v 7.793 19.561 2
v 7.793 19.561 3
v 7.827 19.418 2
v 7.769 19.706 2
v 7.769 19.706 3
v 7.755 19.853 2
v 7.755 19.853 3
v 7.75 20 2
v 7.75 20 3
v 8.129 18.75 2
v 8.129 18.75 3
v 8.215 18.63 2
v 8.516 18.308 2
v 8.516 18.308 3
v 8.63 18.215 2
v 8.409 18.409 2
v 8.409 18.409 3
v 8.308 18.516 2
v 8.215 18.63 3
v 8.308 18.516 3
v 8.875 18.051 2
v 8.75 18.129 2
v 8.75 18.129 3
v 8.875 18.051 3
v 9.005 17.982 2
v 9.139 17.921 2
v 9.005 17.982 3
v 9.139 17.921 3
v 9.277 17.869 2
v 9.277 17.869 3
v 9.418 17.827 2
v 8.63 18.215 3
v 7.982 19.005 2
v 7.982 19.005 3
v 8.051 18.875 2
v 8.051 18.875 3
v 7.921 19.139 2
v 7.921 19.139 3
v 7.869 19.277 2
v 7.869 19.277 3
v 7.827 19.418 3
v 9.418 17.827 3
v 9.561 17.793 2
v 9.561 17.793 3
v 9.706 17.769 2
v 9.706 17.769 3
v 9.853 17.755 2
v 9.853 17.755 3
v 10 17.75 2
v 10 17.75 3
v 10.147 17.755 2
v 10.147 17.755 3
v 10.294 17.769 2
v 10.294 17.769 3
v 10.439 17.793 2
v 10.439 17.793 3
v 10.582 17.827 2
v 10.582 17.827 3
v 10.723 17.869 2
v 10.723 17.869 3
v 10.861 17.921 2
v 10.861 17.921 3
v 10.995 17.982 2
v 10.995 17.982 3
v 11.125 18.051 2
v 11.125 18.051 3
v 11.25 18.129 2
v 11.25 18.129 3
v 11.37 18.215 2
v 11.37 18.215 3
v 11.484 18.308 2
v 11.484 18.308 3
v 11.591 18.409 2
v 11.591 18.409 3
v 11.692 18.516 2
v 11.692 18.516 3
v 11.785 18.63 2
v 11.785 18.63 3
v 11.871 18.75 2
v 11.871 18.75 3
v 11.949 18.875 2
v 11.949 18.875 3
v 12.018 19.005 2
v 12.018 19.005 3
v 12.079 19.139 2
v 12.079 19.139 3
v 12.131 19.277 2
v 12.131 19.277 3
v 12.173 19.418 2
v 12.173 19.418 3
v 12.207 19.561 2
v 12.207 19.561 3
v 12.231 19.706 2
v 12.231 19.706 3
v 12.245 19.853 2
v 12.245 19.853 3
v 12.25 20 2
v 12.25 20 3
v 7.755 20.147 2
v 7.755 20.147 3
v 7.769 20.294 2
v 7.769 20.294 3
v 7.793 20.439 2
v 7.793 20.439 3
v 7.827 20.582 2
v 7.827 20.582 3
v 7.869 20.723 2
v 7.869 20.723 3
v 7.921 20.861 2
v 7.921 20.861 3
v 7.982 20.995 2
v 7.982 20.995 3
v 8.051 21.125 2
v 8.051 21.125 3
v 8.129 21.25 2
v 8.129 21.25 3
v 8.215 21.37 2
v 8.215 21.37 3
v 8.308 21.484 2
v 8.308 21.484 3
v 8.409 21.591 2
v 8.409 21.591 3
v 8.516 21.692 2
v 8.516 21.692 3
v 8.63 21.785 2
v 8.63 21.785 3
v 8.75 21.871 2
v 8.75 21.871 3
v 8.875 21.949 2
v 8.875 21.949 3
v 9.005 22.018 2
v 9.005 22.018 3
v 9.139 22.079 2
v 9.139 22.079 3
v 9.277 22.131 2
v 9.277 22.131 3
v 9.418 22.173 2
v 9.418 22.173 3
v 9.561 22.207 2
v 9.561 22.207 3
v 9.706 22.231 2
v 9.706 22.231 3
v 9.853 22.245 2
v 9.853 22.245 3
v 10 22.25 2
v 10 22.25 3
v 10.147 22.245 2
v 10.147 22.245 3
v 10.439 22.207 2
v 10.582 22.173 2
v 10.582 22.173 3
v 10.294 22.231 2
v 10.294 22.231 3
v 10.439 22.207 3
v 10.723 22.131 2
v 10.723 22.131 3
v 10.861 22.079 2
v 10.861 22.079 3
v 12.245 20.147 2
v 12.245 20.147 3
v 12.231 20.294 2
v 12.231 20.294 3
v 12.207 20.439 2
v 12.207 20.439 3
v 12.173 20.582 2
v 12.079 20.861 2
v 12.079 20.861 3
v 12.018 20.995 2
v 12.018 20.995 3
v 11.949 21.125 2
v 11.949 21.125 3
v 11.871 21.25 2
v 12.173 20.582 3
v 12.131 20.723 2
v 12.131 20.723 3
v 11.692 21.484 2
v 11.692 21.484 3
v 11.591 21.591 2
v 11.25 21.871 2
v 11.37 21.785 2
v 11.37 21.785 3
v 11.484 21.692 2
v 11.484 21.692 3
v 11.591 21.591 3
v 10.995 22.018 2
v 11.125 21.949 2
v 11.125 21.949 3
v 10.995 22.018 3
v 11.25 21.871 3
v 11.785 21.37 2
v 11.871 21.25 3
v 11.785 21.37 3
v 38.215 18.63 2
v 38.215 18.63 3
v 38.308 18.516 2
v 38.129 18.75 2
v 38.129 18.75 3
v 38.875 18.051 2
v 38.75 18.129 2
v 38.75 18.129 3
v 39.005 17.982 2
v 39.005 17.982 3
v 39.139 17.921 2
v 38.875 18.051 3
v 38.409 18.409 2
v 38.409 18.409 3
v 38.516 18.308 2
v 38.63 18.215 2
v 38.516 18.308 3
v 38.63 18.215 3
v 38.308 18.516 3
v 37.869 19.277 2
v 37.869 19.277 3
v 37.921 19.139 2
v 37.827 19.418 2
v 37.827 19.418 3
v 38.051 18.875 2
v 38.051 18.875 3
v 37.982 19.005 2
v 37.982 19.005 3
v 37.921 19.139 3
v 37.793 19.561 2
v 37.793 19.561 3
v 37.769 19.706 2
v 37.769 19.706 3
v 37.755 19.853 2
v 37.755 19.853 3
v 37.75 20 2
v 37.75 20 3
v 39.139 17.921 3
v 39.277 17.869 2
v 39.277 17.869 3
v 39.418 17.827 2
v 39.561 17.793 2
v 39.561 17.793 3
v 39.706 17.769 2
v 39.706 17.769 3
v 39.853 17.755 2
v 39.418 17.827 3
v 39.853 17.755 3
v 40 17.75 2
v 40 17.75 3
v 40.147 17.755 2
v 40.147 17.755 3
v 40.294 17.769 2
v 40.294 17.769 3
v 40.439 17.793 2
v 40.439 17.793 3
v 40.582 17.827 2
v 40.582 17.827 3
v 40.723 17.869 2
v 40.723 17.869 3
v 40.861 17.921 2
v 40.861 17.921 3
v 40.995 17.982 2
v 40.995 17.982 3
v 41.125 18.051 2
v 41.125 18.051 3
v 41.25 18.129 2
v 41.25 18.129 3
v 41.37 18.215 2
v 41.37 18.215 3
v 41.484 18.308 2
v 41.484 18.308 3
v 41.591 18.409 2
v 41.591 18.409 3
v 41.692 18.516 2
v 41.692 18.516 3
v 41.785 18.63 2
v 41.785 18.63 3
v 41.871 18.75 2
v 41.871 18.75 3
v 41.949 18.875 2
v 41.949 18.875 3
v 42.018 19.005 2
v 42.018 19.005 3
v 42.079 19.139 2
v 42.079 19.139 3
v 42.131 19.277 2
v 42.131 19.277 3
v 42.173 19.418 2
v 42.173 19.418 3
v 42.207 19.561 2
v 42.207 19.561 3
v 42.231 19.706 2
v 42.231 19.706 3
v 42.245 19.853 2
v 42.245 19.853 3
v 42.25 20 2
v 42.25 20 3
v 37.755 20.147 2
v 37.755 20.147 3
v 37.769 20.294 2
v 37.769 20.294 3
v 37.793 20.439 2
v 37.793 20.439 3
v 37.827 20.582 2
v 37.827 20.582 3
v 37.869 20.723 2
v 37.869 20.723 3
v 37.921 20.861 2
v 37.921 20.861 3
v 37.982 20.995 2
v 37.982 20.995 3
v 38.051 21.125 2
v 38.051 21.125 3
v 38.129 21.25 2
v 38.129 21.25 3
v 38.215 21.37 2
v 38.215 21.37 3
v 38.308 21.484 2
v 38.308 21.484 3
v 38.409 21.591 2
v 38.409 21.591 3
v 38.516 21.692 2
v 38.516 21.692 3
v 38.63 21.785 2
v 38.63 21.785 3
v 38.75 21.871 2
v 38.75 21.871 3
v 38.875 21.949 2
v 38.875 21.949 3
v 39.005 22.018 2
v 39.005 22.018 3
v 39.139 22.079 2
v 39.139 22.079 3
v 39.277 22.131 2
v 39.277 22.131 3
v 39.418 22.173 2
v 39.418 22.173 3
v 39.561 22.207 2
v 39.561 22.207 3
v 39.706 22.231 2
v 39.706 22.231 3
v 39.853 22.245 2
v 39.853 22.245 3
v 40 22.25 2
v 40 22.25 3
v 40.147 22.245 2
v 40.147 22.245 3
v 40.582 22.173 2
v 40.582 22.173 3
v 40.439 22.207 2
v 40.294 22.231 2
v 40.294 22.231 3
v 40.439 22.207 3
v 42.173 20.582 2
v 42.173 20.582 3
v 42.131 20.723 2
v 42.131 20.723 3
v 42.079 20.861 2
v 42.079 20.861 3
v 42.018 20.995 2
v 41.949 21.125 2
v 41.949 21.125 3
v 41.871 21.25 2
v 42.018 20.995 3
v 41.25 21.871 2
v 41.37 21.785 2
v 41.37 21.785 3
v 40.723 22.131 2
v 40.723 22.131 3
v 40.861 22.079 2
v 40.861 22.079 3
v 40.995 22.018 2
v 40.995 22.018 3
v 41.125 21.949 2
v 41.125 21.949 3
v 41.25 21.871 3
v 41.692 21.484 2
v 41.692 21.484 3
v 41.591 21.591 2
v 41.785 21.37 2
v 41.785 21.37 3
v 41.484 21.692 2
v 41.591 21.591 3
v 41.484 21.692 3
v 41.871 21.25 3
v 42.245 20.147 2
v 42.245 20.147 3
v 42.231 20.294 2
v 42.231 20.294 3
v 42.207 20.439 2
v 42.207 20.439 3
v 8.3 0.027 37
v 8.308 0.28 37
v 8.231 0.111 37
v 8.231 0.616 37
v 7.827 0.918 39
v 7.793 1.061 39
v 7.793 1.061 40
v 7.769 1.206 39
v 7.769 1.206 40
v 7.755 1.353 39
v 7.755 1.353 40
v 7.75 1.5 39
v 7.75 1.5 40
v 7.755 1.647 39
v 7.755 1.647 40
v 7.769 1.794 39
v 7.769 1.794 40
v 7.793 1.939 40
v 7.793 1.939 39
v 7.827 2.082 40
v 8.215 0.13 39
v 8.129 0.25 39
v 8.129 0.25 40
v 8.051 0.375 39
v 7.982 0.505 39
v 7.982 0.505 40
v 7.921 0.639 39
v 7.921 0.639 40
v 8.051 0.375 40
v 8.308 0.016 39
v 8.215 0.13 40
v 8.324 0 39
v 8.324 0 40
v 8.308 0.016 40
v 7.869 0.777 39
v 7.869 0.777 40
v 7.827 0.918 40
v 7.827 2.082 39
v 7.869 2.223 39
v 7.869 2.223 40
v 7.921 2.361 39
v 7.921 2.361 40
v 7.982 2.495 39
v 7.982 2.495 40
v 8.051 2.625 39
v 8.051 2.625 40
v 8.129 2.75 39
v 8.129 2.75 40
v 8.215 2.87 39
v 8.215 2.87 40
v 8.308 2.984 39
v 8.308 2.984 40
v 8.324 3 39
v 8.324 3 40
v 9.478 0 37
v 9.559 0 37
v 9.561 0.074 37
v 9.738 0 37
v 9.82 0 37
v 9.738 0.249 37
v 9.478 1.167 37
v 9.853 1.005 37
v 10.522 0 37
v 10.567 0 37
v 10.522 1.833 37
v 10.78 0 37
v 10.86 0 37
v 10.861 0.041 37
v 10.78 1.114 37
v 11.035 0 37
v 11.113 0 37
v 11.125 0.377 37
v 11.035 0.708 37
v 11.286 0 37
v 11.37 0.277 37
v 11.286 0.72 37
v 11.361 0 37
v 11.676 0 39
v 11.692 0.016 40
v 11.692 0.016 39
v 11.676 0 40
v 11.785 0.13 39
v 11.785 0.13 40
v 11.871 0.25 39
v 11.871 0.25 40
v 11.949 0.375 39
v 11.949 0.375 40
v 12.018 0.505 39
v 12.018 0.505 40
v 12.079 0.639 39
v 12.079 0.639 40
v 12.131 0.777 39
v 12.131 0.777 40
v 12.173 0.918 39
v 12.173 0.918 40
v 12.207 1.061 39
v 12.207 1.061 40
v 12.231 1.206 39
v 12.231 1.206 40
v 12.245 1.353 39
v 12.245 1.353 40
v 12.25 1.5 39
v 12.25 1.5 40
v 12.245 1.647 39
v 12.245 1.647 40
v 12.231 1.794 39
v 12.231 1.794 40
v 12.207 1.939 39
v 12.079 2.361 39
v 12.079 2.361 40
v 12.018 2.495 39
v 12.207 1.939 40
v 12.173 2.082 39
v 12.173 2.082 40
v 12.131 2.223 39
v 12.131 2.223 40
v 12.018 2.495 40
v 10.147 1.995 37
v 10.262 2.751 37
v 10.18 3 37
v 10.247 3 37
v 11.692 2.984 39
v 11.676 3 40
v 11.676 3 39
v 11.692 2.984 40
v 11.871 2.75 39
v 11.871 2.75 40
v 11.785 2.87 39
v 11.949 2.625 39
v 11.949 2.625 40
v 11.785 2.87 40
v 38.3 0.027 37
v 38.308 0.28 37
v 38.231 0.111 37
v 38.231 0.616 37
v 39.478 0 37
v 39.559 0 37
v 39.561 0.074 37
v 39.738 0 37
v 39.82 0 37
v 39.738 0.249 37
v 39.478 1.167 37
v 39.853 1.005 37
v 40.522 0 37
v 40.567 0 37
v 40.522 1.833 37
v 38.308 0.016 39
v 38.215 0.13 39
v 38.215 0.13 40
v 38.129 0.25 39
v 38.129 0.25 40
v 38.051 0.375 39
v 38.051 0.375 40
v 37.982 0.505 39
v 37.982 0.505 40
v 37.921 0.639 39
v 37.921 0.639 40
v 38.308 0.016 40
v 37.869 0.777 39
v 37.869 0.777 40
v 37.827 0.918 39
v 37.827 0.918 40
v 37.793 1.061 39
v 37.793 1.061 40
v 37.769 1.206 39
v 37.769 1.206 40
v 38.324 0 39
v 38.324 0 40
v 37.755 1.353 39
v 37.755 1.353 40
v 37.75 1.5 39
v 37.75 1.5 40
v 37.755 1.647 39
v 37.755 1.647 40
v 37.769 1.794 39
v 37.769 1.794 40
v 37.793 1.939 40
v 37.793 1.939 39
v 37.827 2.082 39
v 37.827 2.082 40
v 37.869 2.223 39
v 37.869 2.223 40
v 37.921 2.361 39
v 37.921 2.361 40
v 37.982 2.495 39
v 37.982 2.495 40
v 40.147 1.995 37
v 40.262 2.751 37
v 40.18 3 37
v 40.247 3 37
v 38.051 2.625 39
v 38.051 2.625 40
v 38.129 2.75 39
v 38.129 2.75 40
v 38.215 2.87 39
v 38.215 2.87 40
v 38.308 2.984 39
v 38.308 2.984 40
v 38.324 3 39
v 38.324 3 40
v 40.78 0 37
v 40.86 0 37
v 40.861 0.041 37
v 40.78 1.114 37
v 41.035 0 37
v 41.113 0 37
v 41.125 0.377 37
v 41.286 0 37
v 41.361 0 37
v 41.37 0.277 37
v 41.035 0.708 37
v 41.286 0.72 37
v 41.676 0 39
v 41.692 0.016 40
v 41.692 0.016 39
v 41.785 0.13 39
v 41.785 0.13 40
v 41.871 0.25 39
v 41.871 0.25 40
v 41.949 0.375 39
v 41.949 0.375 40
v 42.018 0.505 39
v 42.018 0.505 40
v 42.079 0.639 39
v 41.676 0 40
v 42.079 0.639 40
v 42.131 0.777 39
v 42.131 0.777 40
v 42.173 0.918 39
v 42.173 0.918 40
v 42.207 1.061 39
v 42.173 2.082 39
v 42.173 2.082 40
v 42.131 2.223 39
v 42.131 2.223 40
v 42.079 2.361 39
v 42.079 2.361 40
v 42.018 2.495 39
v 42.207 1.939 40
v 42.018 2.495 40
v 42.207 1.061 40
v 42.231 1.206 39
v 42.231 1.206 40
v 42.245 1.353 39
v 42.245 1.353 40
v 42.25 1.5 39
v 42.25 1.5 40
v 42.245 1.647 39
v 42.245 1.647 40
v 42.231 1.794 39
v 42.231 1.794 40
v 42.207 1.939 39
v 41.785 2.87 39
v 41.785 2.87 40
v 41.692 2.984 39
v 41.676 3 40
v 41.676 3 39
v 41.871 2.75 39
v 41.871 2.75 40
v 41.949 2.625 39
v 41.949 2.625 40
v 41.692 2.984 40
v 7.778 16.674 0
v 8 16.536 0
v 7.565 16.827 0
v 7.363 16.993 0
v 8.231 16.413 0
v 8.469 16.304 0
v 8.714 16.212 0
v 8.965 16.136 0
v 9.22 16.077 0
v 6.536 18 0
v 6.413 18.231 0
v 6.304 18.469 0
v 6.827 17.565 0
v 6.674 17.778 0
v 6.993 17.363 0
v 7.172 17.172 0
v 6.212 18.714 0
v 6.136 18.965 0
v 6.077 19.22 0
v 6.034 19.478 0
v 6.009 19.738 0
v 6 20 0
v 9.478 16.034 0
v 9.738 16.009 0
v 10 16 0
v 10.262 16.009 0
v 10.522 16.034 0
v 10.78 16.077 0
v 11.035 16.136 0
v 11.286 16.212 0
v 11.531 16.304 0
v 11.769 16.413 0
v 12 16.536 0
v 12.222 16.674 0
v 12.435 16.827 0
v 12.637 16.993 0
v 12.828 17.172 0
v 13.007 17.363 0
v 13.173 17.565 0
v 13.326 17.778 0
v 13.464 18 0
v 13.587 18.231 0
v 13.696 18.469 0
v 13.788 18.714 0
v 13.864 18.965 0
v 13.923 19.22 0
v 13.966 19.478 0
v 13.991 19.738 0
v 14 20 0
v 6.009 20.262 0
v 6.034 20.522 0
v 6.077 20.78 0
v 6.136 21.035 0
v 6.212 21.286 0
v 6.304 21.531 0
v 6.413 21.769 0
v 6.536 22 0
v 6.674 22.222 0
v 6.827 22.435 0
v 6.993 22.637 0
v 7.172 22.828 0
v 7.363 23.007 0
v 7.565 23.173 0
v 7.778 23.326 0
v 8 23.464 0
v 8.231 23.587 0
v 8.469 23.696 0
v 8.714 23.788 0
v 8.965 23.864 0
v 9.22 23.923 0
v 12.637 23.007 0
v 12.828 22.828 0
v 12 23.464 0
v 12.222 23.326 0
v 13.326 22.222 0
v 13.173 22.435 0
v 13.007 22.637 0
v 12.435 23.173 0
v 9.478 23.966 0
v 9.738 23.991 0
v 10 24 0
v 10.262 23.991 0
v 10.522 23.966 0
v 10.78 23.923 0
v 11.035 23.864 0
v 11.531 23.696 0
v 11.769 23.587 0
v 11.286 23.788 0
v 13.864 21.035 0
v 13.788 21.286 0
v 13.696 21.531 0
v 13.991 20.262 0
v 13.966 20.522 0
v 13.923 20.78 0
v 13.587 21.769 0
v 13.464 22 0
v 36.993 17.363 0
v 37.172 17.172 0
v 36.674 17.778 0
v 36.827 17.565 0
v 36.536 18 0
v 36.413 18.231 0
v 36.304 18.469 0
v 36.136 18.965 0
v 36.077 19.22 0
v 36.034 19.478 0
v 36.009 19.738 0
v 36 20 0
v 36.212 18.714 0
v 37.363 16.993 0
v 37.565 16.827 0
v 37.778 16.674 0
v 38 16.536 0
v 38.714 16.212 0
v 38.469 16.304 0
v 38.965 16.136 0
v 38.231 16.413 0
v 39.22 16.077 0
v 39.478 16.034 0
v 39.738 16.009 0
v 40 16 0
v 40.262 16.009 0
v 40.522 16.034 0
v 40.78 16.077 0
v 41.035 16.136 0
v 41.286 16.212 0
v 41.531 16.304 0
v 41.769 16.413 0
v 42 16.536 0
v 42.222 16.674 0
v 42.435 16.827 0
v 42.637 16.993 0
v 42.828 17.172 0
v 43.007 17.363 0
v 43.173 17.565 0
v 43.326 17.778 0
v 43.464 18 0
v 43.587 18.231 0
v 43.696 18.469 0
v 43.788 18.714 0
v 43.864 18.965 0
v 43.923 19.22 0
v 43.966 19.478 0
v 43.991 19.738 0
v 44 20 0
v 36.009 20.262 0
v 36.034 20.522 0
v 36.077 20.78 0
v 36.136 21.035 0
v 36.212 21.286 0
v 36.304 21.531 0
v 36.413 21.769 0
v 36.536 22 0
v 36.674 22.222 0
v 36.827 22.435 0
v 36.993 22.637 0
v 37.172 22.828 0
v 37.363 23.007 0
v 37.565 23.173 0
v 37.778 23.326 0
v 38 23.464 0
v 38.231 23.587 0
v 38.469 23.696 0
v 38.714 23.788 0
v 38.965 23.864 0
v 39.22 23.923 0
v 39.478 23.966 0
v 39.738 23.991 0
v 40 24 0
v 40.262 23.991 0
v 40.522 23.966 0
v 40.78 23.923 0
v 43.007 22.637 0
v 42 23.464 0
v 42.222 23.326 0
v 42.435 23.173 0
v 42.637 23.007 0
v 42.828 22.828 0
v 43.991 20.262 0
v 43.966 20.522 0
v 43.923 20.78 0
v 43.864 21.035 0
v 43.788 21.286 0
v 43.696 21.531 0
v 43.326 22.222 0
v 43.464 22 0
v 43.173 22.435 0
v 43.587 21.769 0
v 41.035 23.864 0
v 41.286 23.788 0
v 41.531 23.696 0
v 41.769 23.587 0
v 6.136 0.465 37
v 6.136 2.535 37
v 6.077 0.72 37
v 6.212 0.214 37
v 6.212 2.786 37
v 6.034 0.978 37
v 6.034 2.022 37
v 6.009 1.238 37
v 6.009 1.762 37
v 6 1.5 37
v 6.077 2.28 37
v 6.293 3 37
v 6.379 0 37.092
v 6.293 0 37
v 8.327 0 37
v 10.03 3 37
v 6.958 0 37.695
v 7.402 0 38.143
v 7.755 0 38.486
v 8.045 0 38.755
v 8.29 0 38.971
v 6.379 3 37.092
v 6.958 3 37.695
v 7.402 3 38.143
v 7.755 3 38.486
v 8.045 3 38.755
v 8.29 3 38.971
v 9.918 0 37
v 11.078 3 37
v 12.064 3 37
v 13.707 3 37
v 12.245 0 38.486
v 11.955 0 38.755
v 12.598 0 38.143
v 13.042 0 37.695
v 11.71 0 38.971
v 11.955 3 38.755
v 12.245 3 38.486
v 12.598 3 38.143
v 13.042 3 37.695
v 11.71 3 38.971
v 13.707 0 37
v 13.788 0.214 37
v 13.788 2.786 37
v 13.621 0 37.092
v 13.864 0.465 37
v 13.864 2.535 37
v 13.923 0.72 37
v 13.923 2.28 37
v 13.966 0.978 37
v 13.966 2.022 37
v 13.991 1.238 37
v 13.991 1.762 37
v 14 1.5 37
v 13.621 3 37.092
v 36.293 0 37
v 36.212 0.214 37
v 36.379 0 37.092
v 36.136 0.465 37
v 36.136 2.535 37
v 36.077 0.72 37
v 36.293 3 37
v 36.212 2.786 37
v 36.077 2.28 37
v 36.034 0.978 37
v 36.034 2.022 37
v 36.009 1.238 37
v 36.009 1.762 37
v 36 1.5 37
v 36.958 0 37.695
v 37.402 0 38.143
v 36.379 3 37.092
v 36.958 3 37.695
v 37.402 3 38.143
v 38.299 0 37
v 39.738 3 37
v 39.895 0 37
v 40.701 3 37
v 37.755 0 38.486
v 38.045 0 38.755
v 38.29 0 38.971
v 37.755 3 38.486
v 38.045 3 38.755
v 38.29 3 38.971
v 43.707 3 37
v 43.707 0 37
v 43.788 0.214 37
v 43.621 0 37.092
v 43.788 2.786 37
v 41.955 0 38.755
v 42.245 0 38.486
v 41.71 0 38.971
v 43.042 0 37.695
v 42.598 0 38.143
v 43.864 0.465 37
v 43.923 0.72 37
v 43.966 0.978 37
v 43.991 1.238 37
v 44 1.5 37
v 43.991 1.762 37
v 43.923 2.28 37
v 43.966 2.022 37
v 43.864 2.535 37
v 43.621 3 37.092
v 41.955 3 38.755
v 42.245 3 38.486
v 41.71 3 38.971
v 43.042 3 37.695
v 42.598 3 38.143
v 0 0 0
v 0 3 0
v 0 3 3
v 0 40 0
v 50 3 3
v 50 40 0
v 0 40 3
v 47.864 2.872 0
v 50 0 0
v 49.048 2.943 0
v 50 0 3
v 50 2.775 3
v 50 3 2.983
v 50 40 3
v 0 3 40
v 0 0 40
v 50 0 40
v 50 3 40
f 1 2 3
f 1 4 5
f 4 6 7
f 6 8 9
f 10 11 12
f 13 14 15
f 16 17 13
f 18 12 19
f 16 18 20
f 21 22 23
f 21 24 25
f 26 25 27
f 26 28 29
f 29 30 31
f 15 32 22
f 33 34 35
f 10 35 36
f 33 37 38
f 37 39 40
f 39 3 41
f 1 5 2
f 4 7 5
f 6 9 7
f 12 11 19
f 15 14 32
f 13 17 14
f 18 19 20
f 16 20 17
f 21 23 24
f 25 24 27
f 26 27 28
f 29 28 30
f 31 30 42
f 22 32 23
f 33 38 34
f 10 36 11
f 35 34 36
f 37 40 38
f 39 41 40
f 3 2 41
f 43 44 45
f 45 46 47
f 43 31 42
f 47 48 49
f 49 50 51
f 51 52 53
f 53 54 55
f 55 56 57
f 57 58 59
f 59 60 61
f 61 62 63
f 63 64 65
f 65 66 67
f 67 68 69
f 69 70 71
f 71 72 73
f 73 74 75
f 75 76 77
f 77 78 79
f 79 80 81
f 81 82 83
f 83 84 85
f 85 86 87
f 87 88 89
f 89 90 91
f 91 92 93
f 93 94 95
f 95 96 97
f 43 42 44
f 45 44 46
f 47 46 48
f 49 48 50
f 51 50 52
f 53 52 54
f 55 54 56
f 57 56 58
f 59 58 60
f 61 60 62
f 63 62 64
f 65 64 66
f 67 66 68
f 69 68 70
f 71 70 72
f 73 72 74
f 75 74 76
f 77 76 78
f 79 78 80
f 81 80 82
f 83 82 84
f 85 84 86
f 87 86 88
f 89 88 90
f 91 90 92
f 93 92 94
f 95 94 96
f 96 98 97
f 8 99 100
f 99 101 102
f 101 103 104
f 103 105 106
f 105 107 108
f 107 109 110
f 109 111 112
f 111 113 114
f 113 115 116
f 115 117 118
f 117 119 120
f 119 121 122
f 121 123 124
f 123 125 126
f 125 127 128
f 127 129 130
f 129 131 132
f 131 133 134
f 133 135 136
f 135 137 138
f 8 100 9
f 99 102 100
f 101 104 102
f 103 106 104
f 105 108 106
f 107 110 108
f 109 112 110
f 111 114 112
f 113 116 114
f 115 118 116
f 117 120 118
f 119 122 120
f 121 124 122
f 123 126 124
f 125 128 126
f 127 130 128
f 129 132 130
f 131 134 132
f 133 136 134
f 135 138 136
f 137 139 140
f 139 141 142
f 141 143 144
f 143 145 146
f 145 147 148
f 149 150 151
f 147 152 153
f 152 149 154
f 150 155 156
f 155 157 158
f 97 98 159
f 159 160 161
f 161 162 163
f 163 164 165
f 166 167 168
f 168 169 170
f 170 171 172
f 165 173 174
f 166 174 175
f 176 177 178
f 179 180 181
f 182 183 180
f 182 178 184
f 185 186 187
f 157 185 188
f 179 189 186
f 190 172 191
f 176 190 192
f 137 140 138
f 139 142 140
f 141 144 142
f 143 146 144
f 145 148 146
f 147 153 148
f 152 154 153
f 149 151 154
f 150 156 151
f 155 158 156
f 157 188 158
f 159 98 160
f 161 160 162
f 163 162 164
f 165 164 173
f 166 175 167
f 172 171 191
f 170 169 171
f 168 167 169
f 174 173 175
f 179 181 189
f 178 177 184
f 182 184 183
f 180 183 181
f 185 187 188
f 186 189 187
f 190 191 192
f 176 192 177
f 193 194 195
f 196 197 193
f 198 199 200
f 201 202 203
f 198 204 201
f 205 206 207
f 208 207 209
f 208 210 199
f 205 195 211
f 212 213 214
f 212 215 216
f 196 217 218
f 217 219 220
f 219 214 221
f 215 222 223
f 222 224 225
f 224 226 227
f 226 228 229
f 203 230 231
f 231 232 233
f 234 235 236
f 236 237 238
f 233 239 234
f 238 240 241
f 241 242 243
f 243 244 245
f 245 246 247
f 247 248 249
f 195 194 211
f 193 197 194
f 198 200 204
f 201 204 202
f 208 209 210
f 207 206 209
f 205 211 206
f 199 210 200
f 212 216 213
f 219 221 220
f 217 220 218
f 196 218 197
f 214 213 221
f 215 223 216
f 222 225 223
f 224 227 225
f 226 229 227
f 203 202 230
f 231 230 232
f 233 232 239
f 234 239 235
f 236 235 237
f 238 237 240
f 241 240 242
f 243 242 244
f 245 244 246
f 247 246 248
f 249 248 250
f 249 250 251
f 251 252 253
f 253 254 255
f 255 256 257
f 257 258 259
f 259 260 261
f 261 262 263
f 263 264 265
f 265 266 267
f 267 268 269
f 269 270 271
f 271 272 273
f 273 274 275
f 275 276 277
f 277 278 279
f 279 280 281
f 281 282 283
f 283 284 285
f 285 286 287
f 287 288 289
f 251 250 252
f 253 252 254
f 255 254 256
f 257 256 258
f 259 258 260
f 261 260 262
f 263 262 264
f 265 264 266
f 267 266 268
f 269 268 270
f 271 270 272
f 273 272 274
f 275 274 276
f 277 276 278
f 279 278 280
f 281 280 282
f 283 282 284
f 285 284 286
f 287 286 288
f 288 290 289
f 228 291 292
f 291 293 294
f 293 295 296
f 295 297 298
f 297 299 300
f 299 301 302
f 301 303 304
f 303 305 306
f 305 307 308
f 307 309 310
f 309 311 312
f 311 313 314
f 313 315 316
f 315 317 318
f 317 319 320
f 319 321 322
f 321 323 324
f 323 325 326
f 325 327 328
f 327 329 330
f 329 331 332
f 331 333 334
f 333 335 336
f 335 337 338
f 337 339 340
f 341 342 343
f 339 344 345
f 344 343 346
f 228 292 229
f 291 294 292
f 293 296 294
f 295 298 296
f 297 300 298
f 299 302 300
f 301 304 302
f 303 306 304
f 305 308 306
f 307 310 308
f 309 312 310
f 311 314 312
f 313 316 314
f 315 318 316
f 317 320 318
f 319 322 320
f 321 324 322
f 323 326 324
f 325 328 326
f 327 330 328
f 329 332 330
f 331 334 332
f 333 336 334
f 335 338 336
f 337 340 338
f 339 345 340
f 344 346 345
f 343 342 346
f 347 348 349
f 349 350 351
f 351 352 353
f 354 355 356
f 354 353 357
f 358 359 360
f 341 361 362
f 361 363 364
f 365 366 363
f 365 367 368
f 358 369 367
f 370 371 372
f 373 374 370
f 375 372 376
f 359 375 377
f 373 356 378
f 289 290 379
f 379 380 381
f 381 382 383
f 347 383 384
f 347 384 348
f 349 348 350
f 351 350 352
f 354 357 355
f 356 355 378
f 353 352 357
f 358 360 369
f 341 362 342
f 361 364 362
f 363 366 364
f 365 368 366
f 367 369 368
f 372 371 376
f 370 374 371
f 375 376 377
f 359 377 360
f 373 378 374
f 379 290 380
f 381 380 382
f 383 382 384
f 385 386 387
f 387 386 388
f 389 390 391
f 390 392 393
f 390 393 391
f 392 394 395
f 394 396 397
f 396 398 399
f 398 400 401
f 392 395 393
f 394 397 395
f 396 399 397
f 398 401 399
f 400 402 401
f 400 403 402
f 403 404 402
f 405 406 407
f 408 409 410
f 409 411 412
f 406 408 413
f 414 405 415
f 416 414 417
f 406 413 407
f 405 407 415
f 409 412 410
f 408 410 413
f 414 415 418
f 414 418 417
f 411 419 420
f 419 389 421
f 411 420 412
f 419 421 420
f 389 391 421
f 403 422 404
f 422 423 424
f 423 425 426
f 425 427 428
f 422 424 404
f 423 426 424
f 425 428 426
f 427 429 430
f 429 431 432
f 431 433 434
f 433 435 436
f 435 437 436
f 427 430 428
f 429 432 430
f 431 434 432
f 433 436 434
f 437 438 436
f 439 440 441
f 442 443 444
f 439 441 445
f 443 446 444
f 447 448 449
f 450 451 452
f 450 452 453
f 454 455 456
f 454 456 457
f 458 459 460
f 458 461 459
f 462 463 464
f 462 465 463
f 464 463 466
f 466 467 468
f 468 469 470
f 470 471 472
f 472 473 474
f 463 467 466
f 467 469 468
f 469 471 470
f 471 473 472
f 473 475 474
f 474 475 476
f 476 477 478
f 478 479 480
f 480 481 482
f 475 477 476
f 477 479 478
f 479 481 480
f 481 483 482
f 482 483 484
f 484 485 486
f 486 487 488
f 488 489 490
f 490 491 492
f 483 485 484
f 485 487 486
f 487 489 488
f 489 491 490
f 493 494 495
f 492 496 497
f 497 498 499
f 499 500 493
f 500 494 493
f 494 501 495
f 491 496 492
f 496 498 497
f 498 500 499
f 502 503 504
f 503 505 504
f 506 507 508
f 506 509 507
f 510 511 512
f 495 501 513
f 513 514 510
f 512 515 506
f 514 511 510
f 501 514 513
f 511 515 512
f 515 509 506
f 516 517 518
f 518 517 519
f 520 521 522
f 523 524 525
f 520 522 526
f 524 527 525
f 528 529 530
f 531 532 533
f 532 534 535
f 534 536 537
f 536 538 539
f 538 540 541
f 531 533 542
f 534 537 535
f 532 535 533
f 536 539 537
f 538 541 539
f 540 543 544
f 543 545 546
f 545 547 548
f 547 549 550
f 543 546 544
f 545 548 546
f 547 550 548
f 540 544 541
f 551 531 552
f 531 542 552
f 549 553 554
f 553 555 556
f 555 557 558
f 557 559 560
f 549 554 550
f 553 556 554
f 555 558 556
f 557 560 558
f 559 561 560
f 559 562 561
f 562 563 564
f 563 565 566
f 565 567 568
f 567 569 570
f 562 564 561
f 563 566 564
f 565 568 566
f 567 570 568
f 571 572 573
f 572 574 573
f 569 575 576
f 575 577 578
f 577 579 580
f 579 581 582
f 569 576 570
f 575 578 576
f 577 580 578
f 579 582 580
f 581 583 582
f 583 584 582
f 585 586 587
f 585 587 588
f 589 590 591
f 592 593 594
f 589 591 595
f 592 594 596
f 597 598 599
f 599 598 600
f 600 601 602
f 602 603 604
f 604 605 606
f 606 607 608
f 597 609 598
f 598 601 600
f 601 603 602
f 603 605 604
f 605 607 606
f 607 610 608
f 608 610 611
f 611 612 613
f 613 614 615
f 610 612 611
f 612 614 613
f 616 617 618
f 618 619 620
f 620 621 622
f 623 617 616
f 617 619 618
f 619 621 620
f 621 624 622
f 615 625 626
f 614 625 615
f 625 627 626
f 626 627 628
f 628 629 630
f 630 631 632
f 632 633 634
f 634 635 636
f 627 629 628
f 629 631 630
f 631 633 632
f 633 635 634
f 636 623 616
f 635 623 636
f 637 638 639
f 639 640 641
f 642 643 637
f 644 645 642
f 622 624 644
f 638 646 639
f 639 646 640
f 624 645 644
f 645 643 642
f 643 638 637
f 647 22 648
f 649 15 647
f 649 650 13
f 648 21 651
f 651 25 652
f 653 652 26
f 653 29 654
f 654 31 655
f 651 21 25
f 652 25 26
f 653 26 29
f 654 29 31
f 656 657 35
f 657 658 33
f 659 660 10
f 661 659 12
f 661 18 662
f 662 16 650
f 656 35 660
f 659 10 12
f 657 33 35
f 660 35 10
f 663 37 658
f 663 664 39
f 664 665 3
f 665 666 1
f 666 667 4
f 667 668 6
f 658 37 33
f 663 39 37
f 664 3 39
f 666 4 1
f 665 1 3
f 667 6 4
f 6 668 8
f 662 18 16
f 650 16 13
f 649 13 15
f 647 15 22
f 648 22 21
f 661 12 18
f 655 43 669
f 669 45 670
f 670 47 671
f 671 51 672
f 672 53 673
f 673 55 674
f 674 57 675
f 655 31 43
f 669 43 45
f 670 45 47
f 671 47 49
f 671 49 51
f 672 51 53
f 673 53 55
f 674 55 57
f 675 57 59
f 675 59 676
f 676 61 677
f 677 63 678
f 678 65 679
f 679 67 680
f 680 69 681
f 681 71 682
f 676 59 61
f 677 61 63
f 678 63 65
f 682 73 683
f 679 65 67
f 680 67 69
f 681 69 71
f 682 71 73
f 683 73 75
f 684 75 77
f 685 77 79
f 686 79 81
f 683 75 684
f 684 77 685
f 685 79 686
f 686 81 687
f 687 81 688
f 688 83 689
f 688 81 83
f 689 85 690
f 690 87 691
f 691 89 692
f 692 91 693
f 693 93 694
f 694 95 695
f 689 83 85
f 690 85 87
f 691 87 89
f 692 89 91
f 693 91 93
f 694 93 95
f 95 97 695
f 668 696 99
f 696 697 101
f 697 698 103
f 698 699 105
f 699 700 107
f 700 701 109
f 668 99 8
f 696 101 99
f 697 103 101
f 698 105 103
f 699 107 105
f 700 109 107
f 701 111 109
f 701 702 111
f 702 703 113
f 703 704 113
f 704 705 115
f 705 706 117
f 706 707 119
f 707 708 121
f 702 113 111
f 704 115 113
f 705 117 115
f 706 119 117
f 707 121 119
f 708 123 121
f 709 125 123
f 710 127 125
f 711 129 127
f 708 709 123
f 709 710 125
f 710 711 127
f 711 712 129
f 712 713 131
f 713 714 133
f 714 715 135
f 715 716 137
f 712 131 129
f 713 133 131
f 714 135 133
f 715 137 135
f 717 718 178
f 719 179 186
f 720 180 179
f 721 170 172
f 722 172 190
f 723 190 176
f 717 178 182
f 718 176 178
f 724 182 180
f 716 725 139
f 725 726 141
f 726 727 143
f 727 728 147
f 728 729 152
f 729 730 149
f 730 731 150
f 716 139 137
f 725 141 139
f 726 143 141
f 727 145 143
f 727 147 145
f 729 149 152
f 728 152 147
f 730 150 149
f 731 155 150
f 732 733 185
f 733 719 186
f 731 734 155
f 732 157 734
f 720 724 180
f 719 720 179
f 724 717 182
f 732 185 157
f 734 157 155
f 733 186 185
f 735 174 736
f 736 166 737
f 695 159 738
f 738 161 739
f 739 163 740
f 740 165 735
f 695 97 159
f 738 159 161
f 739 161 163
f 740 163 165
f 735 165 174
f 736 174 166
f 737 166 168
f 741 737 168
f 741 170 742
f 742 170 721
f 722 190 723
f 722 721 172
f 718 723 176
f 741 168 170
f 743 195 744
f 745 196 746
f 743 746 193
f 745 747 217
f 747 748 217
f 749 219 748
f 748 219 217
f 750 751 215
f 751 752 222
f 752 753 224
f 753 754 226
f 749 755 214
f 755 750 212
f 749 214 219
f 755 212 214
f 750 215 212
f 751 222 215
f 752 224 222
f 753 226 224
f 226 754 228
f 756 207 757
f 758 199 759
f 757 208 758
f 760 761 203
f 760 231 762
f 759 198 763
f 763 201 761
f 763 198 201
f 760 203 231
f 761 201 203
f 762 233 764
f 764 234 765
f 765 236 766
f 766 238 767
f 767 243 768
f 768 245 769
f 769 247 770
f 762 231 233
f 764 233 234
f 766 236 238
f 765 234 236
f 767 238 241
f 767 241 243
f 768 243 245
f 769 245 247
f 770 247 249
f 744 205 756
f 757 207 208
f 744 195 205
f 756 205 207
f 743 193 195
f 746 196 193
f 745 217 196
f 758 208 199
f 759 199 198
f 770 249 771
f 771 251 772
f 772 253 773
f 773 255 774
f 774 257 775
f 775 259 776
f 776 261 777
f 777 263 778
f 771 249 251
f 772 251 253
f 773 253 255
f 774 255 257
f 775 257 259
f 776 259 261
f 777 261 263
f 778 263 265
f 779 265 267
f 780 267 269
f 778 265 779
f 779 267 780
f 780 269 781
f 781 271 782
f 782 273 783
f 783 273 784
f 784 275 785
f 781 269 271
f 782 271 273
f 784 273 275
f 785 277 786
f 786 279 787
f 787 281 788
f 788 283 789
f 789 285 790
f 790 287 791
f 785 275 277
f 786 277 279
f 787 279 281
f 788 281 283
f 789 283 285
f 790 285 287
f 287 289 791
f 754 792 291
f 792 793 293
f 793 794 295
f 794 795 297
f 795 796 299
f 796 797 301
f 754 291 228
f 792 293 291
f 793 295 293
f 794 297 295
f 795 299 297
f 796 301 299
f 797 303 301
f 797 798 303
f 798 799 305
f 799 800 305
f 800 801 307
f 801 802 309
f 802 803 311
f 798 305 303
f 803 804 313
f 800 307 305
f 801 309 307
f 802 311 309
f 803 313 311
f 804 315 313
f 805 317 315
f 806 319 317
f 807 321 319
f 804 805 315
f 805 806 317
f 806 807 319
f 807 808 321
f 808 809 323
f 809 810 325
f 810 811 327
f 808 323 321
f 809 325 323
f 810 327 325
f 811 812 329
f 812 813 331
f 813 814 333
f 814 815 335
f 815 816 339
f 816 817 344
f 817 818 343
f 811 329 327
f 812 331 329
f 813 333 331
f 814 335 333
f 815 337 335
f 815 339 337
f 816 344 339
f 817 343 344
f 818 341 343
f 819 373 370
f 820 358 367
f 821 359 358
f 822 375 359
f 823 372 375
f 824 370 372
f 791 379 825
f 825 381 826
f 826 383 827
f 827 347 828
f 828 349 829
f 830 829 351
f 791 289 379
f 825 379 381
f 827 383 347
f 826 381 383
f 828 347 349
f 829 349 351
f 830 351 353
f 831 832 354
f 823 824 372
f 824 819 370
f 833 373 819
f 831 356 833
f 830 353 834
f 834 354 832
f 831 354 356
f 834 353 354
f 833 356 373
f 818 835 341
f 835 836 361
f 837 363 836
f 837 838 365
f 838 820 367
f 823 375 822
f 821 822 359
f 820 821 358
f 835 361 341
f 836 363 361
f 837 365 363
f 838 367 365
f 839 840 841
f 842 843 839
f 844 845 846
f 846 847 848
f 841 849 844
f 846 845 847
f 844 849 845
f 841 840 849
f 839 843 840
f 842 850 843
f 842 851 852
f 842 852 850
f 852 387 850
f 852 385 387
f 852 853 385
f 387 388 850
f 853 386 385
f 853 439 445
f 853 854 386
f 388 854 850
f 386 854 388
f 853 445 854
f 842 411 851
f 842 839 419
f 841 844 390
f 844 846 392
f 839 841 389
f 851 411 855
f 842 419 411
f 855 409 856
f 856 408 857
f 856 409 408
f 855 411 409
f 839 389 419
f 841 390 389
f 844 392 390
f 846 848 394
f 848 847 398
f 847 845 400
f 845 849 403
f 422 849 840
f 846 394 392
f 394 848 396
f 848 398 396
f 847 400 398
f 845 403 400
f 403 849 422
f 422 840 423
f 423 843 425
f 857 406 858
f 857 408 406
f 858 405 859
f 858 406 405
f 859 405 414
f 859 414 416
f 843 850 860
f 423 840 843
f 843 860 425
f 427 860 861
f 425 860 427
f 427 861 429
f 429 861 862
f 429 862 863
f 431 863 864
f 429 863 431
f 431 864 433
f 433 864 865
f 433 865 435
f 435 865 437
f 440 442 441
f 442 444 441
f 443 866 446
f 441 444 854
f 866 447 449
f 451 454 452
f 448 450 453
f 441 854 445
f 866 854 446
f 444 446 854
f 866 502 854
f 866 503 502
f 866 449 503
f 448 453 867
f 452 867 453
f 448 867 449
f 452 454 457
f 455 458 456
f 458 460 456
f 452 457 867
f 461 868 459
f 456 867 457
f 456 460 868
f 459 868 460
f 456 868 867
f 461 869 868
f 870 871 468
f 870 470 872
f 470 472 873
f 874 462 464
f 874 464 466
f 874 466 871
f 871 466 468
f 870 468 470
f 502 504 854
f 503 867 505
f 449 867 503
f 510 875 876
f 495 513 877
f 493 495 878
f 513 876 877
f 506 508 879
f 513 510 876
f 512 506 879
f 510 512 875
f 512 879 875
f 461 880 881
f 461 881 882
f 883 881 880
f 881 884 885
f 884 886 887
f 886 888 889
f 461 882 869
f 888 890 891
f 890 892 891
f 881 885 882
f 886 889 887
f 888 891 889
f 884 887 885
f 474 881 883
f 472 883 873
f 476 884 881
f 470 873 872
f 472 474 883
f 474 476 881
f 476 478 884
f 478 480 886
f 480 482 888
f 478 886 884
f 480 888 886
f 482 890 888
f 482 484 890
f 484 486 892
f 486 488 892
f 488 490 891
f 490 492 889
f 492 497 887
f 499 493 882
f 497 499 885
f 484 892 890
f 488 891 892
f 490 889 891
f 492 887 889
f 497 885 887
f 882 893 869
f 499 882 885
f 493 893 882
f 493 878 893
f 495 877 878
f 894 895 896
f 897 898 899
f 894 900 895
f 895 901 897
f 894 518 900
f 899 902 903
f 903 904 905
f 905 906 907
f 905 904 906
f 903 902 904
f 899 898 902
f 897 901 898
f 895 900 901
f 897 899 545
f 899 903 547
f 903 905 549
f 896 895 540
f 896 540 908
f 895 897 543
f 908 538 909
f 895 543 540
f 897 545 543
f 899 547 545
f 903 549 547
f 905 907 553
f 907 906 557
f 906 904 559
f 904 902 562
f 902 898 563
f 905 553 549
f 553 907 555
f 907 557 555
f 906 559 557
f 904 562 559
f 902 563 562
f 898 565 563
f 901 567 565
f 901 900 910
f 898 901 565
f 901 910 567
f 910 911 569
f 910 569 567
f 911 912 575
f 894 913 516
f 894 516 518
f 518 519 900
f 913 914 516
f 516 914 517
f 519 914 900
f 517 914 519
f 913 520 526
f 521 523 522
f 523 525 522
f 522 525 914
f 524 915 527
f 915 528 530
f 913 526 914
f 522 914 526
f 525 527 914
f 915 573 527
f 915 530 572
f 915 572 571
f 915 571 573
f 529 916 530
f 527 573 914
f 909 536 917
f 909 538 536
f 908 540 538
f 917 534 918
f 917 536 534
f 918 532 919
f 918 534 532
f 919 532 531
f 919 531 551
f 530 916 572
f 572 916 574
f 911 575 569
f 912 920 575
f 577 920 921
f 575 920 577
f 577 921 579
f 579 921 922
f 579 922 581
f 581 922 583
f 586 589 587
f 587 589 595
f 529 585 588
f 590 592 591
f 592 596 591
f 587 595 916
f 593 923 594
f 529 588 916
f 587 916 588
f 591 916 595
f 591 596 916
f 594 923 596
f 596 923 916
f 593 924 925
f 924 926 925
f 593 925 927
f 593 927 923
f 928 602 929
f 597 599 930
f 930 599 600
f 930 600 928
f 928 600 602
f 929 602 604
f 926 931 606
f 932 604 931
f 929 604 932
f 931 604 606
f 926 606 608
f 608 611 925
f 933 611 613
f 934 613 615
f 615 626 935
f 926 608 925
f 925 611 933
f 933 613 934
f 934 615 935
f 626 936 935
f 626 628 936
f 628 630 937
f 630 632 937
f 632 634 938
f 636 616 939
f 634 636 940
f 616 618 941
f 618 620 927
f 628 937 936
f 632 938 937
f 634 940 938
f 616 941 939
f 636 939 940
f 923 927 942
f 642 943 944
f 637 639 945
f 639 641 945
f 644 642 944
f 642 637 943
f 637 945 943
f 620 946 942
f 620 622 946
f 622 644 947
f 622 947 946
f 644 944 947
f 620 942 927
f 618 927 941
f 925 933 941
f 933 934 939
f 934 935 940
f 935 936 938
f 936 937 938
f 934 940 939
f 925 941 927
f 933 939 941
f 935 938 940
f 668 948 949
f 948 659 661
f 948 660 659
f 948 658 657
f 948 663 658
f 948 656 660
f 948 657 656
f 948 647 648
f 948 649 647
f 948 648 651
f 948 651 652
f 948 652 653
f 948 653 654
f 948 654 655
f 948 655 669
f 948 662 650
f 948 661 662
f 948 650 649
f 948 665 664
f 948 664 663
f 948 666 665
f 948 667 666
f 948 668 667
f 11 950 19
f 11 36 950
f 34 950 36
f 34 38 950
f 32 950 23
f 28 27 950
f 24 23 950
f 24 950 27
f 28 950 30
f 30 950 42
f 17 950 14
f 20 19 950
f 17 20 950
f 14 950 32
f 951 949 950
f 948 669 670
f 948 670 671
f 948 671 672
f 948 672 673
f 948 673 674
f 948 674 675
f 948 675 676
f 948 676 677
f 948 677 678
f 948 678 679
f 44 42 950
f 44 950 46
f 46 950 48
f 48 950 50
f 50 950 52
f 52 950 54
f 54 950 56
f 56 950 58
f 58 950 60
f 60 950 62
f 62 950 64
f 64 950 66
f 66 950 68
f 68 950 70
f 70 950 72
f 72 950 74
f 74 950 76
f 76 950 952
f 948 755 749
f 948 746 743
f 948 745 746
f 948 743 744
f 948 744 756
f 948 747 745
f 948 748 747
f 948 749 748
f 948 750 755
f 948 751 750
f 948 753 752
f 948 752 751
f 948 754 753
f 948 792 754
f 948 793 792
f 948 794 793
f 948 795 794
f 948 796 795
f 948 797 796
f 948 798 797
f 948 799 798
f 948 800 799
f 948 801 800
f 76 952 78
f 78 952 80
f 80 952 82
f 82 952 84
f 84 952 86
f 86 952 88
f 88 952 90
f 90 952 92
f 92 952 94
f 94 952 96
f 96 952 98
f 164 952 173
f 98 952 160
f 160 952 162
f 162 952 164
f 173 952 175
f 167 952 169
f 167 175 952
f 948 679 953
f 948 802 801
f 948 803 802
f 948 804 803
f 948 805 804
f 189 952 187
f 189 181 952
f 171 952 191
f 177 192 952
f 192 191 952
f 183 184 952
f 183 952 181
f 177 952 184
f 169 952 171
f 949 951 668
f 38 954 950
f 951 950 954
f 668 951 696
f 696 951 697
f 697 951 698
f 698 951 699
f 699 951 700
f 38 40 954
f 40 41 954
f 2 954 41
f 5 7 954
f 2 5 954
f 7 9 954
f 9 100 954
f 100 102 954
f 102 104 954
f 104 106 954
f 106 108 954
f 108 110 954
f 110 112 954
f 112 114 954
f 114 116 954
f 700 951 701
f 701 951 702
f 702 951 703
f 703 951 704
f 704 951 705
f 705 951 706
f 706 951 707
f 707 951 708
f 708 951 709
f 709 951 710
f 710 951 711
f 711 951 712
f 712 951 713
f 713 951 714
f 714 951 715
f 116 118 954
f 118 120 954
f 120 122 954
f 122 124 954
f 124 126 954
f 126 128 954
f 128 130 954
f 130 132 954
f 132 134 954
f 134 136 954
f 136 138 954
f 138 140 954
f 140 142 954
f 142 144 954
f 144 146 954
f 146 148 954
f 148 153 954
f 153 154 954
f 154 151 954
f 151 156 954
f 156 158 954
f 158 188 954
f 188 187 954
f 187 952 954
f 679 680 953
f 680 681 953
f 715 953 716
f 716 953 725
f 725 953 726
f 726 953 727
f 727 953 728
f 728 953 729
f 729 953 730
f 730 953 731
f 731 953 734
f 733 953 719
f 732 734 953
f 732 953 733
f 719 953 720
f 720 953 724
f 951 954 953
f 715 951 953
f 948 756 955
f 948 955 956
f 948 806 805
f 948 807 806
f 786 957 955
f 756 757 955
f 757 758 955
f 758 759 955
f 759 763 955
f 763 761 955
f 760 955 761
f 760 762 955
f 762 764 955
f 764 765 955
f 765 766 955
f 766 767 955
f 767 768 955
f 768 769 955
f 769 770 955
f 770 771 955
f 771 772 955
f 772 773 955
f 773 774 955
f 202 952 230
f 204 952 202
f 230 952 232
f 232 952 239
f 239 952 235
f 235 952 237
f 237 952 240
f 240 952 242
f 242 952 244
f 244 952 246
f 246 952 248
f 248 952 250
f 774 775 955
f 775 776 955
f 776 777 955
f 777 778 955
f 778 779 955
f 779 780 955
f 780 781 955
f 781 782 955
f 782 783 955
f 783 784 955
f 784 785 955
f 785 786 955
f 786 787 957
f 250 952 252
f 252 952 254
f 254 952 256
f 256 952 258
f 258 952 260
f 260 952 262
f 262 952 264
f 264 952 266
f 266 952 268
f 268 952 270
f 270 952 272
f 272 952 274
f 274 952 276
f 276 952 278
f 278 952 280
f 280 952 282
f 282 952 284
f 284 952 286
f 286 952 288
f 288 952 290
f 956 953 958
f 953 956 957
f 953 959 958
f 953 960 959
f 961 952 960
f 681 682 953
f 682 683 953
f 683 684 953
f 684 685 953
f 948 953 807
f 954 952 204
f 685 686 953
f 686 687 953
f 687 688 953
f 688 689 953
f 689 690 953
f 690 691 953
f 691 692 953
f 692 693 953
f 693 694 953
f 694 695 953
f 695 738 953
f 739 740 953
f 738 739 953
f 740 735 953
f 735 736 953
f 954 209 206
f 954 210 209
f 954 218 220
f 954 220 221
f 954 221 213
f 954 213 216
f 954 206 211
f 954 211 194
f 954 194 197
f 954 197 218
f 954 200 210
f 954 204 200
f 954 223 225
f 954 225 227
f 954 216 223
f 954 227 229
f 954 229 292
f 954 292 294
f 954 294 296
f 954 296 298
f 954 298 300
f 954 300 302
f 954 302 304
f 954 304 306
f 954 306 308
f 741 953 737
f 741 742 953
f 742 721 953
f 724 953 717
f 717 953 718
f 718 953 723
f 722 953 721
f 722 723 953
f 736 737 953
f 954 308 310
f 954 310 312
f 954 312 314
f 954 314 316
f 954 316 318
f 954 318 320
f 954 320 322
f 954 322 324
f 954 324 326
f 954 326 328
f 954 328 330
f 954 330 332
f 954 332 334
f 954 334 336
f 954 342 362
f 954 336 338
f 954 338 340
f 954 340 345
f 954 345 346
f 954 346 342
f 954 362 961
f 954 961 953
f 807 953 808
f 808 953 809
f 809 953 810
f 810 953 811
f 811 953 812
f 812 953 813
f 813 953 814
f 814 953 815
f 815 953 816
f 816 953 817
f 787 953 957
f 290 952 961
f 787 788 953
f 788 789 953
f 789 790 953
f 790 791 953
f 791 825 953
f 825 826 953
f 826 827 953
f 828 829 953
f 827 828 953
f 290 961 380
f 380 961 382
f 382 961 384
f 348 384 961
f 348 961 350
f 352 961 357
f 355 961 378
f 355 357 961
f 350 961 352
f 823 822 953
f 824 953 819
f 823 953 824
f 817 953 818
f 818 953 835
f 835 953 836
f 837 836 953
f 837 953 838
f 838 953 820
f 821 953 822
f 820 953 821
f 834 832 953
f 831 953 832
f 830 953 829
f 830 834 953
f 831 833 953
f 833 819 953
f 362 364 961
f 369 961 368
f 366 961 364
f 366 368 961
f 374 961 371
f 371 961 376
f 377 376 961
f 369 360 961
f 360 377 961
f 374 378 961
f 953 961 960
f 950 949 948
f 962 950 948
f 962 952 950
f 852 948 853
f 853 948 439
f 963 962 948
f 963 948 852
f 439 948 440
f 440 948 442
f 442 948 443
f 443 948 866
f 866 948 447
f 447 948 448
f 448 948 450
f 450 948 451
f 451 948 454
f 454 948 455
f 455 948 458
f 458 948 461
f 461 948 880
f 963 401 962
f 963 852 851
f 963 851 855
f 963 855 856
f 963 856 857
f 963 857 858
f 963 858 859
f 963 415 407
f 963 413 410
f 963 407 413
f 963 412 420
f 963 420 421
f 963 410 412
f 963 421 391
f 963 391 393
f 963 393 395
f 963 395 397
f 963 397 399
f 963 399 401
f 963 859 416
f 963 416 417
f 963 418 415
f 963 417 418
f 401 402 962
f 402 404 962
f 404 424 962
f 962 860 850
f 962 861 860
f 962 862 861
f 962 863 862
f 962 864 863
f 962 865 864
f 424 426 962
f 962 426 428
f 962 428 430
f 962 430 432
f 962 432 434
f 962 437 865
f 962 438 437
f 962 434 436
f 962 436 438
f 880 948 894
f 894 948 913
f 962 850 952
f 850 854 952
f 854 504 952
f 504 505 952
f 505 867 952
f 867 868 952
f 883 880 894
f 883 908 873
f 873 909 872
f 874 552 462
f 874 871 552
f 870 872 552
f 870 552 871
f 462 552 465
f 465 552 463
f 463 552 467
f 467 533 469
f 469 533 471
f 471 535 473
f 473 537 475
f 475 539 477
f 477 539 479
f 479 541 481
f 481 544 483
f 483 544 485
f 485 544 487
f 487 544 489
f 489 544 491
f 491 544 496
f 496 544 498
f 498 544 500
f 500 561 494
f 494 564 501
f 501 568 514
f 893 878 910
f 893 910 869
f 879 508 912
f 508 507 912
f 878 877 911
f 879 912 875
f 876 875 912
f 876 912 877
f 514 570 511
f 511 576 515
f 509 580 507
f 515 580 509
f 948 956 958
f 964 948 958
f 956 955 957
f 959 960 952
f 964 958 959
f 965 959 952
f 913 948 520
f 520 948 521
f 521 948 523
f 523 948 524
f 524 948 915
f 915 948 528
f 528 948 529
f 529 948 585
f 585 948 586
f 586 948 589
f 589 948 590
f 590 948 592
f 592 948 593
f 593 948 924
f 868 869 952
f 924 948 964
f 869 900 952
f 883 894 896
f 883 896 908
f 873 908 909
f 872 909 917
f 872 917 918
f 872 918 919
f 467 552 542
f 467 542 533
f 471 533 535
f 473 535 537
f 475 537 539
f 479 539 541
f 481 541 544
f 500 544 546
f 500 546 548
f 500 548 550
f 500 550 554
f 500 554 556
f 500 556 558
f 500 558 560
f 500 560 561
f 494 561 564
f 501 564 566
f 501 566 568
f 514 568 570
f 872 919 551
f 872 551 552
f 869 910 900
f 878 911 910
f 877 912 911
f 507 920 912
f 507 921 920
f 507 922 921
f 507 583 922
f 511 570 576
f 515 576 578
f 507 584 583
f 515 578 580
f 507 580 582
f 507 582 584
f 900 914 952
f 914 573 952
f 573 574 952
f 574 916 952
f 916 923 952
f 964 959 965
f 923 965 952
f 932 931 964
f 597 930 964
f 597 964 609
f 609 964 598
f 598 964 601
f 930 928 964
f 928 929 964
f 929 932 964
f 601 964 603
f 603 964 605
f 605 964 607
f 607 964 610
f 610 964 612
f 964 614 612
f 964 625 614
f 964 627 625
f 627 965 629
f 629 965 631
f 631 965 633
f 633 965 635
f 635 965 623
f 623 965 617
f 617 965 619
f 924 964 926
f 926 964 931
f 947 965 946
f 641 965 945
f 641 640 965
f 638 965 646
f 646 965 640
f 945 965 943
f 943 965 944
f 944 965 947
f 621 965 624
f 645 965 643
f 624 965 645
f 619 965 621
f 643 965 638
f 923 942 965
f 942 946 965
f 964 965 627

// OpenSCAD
// L-bracket with countersunk holes
// Units: mm

$fn = 96;

flange_w = 50;
horiz_d  = 40;
vert_h   = 40;
thickness = 3;

// Hole parameters
hole_d = 4.5;
csk_d  = 8;
csk_h  = 2;
edge_inset = 10;

// Geometry helpers
module countersunk_hole(total_thickness, thru_d, csk_d, csk_h) {
    union() {
        cylinder(h = total_thickness, d = thru_d);
        translate([0, 0, total_thickness - csk_h])
            cylinder(h = csk_h, d1 = thru_d, d2 = csk_d);
    }
}

module horizontal_flange() {
    difference() {
        cube([flange_w, horiz_d, thickness], center = false);

        for (x = [edge_inset, flange_w - edge_inset]) {
            translate([x, horiz_d/2, thickness])
                rotate([180, 0, 0])
                    countersunk_hole(thickness, hole_d, csk_d, csk_h);
        }
    }
}

module vertical_flange() {
    difference() {
        cube([flange_w, thickness, vert_h], center = false);

        for (x = [edge_inset, flange_w - edge_inset]) {
            translate([x, thickness/2, vert_h])
                rotate([180, 0, 0])
                    countersunk_hole(thickness, hole_d, csk_d, csk_h);
        }
    }
}

union() {
    horizontal_flange();
    vertical_flange();
}
